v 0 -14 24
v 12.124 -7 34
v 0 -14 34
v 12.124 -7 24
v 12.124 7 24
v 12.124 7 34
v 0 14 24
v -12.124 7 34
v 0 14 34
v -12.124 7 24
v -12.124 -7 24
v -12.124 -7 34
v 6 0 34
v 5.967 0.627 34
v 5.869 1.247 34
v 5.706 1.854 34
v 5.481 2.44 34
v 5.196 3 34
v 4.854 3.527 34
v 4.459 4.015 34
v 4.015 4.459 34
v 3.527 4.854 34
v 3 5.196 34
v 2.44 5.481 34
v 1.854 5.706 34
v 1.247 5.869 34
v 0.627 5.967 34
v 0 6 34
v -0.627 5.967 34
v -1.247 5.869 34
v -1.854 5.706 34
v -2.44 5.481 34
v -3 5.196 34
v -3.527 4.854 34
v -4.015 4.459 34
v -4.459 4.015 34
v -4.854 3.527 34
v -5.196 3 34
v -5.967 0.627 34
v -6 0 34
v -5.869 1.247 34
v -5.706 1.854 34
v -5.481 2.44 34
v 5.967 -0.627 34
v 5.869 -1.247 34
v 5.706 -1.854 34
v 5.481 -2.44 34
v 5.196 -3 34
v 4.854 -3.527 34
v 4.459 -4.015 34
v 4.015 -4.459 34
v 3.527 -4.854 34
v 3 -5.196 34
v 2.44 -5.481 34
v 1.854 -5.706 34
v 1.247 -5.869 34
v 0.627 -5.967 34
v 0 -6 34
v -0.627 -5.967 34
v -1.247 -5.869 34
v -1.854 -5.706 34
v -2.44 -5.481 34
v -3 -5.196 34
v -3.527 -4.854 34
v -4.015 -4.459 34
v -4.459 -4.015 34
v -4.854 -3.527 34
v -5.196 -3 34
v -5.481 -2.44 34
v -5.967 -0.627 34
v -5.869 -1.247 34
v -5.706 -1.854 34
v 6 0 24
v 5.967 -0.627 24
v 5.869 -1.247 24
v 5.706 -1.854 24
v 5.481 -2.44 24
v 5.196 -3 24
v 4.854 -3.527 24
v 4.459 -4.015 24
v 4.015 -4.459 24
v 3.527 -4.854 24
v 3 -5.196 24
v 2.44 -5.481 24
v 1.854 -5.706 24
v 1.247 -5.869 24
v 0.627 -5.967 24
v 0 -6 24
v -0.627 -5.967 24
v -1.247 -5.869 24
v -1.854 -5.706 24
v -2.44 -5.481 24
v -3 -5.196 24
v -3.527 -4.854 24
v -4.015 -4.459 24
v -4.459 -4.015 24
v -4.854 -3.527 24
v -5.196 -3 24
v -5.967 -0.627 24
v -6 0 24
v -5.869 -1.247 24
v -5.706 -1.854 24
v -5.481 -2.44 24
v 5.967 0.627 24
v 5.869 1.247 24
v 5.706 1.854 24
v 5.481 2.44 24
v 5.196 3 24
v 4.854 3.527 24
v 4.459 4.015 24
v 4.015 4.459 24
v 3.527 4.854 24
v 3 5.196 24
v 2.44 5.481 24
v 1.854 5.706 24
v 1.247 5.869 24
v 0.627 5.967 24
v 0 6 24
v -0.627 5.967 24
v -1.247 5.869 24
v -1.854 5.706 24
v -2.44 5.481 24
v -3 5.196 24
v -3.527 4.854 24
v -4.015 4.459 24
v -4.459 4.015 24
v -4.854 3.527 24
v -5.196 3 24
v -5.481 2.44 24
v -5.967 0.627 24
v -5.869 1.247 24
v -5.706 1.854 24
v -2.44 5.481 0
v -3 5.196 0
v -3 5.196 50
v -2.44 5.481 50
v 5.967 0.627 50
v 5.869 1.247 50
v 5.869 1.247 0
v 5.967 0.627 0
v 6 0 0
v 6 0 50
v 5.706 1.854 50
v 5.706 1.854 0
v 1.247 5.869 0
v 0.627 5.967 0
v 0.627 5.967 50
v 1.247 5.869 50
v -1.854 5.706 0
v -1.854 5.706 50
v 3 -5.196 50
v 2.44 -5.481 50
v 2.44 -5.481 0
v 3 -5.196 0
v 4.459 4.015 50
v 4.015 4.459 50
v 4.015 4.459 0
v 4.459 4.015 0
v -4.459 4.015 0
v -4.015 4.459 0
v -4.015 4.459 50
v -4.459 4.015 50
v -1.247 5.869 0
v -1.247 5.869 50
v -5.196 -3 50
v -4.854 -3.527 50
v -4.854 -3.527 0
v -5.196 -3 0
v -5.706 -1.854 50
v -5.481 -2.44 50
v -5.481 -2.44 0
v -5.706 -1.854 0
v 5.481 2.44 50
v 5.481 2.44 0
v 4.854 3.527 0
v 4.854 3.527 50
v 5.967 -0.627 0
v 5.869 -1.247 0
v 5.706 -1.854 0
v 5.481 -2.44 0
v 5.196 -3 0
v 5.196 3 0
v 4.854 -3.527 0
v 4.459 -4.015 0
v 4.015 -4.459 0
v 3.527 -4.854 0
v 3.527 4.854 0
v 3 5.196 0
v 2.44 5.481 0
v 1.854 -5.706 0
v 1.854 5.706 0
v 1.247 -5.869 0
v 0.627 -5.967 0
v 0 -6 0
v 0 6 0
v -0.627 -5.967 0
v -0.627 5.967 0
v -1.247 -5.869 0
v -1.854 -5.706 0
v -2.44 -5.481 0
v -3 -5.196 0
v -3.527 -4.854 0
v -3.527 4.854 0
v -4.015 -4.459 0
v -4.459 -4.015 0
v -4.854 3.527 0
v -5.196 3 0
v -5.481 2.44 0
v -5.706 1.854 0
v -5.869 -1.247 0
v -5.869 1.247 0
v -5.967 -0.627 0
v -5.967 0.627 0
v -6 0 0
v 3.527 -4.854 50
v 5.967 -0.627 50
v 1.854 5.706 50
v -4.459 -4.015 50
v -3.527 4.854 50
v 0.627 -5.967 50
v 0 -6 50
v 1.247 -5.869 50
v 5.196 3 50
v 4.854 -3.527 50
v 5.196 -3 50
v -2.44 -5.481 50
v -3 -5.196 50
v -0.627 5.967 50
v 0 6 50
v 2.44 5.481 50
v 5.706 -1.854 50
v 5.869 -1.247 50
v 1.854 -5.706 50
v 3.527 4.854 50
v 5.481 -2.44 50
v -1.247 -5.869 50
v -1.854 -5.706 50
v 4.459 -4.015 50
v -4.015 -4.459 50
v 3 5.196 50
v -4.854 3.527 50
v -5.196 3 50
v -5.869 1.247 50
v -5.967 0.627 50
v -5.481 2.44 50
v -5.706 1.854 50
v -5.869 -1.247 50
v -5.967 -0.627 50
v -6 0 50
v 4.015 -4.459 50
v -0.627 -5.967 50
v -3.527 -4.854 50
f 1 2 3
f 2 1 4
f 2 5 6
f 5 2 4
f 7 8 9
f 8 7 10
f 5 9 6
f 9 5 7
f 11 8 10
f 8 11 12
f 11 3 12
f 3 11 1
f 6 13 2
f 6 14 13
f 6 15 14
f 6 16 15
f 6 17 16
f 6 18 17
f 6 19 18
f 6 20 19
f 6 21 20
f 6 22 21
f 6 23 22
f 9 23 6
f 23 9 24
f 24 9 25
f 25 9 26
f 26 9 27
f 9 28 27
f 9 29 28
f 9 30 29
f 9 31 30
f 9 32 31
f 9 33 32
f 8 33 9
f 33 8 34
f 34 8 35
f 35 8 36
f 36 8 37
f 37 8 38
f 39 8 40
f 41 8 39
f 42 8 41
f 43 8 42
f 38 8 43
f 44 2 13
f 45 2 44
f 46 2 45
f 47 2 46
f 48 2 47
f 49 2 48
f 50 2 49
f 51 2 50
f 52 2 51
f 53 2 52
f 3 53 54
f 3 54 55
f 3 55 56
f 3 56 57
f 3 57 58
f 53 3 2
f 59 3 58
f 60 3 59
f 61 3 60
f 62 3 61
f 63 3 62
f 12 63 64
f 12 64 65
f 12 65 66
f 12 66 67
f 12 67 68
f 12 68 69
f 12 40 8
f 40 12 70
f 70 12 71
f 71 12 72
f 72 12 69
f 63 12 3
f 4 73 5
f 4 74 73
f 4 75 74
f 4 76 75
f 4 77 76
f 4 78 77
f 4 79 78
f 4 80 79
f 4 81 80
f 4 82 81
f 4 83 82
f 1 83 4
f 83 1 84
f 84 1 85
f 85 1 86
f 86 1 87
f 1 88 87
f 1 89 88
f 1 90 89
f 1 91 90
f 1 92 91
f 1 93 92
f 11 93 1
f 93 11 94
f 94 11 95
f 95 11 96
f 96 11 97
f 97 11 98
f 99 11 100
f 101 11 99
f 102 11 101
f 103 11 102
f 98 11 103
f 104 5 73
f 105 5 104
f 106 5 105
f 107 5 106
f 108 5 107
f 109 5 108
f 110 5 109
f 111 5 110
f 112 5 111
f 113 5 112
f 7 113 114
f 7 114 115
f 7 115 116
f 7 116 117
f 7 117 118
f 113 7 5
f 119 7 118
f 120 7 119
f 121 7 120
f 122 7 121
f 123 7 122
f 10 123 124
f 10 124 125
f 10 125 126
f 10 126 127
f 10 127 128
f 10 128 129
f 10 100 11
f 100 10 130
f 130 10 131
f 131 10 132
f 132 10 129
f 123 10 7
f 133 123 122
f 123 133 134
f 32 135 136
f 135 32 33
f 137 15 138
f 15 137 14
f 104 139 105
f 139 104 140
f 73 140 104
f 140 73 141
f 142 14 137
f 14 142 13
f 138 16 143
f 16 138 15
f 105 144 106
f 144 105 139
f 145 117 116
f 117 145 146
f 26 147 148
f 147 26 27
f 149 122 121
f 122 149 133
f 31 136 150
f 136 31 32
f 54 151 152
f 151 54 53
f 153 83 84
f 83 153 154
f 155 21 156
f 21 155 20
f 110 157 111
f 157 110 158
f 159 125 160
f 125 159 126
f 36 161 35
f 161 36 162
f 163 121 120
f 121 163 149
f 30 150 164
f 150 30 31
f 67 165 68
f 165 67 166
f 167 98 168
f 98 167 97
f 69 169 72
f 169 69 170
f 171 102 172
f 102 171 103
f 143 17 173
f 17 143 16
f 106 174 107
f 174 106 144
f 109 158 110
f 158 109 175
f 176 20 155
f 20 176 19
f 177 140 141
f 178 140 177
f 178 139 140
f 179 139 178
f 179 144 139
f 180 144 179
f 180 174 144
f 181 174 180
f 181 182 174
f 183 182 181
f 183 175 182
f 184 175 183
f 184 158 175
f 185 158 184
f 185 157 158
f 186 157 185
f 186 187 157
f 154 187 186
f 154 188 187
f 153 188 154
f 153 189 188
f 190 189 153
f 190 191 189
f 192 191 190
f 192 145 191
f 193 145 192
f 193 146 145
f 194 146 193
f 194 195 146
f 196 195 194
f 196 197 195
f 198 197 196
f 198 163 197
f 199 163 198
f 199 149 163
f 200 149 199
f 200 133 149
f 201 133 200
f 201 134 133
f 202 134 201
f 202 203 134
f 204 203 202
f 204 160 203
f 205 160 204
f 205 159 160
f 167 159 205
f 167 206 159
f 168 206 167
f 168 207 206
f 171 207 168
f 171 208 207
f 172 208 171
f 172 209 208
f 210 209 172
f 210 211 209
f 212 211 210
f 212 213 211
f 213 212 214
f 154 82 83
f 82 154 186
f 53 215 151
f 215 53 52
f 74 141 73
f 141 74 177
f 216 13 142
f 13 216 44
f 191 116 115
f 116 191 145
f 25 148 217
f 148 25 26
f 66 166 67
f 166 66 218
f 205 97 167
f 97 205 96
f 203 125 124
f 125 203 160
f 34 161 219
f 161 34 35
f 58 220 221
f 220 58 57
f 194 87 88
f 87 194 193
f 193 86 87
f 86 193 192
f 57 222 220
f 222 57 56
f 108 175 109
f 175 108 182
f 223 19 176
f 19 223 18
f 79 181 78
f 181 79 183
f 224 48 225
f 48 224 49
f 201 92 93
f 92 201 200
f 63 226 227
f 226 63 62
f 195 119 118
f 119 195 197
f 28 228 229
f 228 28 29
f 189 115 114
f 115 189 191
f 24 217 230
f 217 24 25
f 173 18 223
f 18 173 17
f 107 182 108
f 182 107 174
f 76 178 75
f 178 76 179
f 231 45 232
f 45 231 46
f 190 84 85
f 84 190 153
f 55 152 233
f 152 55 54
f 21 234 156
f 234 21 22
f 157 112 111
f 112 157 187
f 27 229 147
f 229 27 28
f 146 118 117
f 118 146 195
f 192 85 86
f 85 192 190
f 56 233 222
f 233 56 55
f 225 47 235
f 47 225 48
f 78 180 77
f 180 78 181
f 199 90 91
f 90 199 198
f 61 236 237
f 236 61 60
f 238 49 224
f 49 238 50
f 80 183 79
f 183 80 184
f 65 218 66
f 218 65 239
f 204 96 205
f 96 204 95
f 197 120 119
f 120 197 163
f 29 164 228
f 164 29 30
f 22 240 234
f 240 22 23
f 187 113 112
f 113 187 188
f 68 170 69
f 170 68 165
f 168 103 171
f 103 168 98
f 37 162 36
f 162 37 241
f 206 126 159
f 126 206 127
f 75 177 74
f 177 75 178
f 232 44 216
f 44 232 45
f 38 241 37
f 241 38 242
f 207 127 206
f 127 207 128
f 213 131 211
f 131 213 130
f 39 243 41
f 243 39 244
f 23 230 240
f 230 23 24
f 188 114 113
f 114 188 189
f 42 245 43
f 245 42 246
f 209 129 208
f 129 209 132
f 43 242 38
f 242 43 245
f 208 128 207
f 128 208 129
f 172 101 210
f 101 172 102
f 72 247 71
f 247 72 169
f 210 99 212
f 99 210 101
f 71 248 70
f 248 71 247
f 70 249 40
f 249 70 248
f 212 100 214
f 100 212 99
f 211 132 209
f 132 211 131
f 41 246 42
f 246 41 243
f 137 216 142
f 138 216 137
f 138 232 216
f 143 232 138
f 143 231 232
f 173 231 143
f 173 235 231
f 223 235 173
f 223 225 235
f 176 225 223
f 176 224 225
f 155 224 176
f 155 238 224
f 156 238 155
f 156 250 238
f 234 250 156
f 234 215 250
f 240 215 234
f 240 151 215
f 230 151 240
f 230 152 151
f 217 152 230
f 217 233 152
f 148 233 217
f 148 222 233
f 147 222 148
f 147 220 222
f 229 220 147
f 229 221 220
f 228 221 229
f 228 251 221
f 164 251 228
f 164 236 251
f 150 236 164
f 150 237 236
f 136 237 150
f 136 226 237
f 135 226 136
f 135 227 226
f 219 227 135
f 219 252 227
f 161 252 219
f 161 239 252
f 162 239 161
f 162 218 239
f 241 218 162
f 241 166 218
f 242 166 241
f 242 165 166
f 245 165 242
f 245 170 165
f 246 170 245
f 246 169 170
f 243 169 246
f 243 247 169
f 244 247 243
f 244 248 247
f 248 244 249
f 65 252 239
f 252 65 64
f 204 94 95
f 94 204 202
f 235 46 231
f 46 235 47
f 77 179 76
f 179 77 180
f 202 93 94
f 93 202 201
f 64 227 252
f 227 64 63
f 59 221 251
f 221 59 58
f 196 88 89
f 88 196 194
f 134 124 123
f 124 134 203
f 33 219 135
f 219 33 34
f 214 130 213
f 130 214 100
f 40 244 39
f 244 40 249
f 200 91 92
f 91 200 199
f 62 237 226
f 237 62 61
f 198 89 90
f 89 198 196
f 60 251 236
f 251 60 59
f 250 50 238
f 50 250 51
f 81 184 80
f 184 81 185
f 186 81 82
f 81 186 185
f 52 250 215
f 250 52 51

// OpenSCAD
// file: _common.scad
// mechanism 共用設定 + 齒輪 module
$fn = 60;

// 簡化齒輪：N 個齒、節圓半徑 r、齒高 h、齒寬 w
module simple_gear(N = 16, r = 20, h = 4, thick = 6) {
  union() {
    // 主圓盤
    cylinder(h = thick, r = r, center = true);
    // 齒（梯形）
    for (i = [0:N-1]) {
      rotate([0, 0, i * 360 / N])
        translate([r, 0, 0])
          linear_extrude(height = thick, center = true)
            polygon([[0, -2.4], [h, -1.4], [h, 1.4], [0, 2.4]]);
    }
    // 中心凸軸
    cylinder(h = thick * 1.4, r = r * 0.18, center = true);
  }
}
// main file
// 螺旋 Screw — 螺絲（圓柱 + 螺紋 + 頭部）
include <_common.scad>

// 螺絲頭部（六角頭）
color([0.51, 0.09, 0.26])
  translate([0, 0, 24]) rotate([0, 0, 30])
    cylinder(h = 10, r = 14, $fn = 6);

// 軸身
color([0.86, 0.15, 0.46])
  cylinder(h = 50, r = 6, center = false);

// 螺紋（用 linear_extrude + twist 製作真實螺紋）
color([0.62, 0.08, 0.30])
  translate([0, 0, 0]) linear_extrude(height = 50, twist = 720, $fn = 60, slices = 60)
    translate([3, 0]) circle(r = 2.5, $fn = 8);
